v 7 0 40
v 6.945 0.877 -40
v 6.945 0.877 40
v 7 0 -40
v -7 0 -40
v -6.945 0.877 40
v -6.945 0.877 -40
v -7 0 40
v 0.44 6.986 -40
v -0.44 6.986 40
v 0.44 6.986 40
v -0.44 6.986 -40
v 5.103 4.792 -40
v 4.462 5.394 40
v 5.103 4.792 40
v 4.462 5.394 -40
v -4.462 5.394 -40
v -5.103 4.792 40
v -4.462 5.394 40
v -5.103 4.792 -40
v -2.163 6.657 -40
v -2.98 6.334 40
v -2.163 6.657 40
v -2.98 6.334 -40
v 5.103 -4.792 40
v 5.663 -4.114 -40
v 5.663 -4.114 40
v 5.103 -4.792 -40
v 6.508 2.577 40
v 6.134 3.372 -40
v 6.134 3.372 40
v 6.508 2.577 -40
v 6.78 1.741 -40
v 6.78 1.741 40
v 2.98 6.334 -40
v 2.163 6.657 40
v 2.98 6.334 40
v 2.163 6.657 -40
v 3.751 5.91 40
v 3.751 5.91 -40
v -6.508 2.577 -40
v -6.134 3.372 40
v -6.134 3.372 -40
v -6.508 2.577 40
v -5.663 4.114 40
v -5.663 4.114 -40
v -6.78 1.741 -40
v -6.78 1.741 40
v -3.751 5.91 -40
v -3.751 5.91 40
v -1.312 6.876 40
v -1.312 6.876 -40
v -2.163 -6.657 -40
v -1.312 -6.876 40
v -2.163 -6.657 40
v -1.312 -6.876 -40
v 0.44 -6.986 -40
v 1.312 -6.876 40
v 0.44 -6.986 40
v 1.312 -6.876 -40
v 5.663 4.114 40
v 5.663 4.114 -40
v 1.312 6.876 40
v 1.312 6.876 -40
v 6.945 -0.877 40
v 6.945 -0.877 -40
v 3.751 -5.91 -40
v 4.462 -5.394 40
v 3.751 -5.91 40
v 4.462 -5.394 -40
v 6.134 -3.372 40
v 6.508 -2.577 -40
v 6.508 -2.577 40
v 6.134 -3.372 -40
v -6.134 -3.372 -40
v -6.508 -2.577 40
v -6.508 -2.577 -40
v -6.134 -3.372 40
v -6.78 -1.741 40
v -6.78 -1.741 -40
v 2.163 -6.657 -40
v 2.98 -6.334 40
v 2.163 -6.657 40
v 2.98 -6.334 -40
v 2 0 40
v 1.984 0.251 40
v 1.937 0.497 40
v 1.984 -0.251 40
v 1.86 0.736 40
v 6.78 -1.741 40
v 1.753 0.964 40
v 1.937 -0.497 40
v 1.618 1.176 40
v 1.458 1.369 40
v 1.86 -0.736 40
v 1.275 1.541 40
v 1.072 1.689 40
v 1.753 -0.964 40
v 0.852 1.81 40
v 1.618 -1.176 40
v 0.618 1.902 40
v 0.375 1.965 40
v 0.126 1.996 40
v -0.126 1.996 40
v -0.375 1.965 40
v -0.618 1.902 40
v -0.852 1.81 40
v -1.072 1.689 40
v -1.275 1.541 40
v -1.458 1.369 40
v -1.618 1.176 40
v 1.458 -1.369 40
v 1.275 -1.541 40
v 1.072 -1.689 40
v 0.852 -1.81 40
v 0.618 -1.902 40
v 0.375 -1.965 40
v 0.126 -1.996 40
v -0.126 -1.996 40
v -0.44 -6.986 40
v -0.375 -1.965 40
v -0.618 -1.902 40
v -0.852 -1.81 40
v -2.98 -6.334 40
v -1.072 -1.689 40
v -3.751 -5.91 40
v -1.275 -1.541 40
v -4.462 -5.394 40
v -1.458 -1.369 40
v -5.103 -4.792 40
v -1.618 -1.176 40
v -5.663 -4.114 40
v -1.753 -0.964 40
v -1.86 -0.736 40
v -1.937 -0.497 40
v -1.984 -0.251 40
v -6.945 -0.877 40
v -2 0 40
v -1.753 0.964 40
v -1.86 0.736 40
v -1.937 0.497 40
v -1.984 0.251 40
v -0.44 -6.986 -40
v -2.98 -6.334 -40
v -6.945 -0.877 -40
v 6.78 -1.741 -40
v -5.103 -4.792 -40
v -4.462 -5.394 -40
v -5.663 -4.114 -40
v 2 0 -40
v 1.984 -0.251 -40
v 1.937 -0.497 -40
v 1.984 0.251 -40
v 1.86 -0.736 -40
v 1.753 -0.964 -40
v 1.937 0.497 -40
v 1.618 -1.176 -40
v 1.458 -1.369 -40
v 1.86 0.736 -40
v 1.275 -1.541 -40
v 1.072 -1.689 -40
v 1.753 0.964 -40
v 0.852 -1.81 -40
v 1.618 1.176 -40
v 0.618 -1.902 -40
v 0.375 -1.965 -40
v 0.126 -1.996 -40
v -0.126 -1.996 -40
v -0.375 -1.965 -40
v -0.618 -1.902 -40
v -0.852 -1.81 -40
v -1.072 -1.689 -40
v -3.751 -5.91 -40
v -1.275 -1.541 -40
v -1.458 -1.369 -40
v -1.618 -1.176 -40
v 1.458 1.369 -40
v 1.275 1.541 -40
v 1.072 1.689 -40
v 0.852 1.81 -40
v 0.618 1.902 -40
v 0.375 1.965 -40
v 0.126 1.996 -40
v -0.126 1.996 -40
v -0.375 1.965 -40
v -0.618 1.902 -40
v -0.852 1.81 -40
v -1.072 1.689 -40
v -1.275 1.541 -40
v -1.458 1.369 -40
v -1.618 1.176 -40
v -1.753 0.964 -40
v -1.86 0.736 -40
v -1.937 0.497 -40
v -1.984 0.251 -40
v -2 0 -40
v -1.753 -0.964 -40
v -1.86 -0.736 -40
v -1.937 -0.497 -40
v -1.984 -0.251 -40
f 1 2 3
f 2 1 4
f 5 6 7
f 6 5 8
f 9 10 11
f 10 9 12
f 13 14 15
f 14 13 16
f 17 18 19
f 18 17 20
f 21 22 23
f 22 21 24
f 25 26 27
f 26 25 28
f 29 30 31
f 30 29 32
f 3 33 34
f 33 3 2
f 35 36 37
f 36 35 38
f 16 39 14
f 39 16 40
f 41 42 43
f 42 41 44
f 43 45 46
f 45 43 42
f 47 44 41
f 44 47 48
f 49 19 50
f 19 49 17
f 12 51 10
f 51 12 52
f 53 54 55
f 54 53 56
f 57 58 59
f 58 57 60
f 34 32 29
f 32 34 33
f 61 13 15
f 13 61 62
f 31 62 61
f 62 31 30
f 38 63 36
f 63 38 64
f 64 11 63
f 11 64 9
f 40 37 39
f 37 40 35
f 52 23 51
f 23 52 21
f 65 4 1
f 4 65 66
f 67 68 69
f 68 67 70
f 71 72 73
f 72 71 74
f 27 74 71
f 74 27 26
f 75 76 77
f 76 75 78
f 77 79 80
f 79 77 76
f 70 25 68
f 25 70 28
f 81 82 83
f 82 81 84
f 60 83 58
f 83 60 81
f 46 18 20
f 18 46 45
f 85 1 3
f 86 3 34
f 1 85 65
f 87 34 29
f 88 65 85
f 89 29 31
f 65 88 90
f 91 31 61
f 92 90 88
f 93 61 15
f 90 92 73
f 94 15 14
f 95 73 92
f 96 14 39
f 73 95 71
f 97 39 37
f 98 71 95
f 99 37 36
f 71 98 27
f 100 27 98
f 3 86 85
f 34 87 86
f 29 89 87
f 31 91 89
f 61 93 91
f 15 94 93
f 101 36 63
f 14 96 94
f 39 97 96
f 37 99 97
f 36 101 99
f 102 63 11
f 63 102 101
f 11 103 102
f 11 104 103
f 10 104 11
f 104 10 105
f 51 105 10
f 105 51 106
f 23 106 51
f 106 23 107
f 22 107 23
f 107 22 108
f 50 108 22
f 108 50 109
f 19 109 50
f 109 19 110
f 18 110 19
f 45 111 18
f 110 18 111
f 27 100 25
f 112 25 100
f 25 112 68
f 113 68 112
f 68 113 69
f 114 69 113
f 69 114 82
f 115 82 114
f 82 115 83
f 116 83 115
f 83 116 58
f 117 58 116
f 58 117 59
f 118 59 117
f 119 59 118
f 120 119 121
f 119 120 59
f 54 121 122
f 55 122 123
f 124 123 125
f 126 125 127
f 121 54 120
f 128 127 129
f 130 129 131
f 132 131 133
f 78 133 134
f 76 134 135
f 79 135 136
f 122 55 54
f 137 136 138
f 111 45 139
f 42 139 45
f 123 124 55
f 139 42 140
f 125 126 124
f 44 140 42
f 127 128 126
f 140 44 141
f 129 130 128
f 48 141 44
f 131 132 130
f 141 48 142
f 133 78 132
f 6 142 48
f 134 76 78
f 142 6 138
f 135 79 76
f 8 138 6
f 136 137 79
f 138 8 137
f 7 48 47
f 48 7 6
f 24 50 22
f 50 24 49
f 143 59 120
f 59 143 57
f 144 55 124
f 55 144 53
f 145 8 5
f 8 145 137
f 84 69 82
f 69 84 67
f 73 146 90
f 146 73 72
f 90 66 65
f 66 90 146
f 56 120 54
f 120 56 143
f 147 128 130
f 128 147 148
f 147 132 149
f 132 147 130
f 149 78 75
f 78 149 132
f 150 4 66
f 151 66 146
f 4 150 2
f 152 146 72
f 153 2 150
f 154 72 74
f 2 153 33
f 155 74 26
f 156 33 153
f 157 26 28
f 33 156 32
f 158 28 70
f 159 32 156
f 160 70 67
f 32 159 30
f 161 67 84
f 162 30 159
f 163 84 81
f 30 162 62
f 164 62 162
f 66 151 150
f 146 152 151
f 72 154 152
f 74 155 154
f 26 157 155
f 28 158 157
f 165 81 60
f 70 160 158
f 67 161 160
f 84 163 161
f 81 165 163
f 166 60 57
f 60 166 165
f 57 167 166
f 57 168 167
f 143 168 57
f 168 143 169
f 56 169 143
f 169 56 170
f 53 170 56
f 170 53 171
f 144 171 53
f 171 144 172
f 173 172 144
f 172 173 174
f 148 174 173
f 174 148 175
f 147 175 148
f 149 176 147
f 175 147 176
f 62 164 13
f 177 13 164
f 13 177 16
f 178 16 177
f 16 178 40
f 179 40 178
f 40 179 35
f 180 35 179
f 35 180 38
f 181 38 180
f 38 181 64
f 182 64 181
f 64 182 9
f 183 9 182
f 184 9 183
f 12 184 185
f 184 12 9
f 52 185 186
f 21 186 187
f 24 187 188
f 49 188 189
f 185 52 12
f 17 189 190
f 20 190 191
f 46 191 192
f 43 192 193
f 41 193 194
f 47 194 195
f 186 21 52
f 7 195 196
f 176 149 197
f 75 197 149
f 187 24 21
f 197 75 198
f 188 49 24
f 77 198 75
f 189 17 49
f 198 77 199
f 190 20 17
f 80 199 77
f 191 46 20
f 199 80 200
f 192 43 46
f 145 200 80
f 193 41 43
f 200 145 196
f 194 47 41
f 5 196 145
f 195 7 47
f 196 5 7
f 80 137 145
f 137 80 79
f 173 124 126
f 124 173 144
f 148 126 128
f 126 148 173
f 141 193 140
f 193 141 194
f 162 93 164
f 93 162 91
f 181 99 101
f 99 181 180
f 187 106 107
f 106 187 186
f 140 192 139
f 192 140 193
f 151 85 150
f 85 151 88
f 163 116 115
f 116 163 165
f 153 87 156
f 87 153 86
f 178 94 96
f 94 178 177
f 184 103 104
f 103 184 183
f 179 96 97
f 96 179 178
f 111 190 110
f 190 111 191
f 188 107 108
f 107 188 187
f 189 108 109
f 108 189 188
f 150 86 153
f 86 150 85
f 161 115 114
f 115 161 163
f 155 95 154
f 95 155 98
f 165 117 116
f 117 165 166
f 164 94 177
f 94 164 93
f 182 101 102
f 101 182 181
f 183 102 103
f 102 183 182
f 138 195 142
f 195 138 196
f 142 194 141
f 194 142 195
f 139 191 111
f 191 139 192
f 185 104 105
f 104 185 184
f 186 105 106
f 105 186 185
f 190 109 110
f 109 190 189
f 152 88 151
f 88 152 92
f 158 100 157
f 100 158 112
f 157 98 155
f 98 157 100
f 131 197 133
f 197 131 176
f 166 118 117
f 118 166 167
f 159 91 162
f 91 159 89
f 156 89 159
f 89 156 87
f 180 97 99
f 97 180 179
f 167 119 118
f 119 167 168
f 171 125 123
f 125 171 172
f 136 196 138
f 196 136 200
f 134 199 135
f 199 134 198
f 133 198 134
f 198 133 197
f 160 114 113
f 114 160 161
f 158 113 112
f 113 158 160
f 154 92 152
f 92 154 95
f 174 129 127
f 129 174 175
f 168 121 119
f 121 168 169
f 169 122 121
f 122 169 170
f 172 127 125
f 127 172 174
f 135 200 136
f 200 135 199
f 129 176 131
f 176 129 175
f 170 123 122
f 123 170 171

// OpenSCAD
$fn = 50;


difference() {
	union() {
		translate(v = [0, 0, -40.0000000000]) {
			cylinder(h = 80, r = 7.0000000000);
		}
	}
	union() {
		translate(v = [0, 0, -100.0000000000]) {
			cylinder(h = 200, r = 2.0000000000);
		}
	}
}
